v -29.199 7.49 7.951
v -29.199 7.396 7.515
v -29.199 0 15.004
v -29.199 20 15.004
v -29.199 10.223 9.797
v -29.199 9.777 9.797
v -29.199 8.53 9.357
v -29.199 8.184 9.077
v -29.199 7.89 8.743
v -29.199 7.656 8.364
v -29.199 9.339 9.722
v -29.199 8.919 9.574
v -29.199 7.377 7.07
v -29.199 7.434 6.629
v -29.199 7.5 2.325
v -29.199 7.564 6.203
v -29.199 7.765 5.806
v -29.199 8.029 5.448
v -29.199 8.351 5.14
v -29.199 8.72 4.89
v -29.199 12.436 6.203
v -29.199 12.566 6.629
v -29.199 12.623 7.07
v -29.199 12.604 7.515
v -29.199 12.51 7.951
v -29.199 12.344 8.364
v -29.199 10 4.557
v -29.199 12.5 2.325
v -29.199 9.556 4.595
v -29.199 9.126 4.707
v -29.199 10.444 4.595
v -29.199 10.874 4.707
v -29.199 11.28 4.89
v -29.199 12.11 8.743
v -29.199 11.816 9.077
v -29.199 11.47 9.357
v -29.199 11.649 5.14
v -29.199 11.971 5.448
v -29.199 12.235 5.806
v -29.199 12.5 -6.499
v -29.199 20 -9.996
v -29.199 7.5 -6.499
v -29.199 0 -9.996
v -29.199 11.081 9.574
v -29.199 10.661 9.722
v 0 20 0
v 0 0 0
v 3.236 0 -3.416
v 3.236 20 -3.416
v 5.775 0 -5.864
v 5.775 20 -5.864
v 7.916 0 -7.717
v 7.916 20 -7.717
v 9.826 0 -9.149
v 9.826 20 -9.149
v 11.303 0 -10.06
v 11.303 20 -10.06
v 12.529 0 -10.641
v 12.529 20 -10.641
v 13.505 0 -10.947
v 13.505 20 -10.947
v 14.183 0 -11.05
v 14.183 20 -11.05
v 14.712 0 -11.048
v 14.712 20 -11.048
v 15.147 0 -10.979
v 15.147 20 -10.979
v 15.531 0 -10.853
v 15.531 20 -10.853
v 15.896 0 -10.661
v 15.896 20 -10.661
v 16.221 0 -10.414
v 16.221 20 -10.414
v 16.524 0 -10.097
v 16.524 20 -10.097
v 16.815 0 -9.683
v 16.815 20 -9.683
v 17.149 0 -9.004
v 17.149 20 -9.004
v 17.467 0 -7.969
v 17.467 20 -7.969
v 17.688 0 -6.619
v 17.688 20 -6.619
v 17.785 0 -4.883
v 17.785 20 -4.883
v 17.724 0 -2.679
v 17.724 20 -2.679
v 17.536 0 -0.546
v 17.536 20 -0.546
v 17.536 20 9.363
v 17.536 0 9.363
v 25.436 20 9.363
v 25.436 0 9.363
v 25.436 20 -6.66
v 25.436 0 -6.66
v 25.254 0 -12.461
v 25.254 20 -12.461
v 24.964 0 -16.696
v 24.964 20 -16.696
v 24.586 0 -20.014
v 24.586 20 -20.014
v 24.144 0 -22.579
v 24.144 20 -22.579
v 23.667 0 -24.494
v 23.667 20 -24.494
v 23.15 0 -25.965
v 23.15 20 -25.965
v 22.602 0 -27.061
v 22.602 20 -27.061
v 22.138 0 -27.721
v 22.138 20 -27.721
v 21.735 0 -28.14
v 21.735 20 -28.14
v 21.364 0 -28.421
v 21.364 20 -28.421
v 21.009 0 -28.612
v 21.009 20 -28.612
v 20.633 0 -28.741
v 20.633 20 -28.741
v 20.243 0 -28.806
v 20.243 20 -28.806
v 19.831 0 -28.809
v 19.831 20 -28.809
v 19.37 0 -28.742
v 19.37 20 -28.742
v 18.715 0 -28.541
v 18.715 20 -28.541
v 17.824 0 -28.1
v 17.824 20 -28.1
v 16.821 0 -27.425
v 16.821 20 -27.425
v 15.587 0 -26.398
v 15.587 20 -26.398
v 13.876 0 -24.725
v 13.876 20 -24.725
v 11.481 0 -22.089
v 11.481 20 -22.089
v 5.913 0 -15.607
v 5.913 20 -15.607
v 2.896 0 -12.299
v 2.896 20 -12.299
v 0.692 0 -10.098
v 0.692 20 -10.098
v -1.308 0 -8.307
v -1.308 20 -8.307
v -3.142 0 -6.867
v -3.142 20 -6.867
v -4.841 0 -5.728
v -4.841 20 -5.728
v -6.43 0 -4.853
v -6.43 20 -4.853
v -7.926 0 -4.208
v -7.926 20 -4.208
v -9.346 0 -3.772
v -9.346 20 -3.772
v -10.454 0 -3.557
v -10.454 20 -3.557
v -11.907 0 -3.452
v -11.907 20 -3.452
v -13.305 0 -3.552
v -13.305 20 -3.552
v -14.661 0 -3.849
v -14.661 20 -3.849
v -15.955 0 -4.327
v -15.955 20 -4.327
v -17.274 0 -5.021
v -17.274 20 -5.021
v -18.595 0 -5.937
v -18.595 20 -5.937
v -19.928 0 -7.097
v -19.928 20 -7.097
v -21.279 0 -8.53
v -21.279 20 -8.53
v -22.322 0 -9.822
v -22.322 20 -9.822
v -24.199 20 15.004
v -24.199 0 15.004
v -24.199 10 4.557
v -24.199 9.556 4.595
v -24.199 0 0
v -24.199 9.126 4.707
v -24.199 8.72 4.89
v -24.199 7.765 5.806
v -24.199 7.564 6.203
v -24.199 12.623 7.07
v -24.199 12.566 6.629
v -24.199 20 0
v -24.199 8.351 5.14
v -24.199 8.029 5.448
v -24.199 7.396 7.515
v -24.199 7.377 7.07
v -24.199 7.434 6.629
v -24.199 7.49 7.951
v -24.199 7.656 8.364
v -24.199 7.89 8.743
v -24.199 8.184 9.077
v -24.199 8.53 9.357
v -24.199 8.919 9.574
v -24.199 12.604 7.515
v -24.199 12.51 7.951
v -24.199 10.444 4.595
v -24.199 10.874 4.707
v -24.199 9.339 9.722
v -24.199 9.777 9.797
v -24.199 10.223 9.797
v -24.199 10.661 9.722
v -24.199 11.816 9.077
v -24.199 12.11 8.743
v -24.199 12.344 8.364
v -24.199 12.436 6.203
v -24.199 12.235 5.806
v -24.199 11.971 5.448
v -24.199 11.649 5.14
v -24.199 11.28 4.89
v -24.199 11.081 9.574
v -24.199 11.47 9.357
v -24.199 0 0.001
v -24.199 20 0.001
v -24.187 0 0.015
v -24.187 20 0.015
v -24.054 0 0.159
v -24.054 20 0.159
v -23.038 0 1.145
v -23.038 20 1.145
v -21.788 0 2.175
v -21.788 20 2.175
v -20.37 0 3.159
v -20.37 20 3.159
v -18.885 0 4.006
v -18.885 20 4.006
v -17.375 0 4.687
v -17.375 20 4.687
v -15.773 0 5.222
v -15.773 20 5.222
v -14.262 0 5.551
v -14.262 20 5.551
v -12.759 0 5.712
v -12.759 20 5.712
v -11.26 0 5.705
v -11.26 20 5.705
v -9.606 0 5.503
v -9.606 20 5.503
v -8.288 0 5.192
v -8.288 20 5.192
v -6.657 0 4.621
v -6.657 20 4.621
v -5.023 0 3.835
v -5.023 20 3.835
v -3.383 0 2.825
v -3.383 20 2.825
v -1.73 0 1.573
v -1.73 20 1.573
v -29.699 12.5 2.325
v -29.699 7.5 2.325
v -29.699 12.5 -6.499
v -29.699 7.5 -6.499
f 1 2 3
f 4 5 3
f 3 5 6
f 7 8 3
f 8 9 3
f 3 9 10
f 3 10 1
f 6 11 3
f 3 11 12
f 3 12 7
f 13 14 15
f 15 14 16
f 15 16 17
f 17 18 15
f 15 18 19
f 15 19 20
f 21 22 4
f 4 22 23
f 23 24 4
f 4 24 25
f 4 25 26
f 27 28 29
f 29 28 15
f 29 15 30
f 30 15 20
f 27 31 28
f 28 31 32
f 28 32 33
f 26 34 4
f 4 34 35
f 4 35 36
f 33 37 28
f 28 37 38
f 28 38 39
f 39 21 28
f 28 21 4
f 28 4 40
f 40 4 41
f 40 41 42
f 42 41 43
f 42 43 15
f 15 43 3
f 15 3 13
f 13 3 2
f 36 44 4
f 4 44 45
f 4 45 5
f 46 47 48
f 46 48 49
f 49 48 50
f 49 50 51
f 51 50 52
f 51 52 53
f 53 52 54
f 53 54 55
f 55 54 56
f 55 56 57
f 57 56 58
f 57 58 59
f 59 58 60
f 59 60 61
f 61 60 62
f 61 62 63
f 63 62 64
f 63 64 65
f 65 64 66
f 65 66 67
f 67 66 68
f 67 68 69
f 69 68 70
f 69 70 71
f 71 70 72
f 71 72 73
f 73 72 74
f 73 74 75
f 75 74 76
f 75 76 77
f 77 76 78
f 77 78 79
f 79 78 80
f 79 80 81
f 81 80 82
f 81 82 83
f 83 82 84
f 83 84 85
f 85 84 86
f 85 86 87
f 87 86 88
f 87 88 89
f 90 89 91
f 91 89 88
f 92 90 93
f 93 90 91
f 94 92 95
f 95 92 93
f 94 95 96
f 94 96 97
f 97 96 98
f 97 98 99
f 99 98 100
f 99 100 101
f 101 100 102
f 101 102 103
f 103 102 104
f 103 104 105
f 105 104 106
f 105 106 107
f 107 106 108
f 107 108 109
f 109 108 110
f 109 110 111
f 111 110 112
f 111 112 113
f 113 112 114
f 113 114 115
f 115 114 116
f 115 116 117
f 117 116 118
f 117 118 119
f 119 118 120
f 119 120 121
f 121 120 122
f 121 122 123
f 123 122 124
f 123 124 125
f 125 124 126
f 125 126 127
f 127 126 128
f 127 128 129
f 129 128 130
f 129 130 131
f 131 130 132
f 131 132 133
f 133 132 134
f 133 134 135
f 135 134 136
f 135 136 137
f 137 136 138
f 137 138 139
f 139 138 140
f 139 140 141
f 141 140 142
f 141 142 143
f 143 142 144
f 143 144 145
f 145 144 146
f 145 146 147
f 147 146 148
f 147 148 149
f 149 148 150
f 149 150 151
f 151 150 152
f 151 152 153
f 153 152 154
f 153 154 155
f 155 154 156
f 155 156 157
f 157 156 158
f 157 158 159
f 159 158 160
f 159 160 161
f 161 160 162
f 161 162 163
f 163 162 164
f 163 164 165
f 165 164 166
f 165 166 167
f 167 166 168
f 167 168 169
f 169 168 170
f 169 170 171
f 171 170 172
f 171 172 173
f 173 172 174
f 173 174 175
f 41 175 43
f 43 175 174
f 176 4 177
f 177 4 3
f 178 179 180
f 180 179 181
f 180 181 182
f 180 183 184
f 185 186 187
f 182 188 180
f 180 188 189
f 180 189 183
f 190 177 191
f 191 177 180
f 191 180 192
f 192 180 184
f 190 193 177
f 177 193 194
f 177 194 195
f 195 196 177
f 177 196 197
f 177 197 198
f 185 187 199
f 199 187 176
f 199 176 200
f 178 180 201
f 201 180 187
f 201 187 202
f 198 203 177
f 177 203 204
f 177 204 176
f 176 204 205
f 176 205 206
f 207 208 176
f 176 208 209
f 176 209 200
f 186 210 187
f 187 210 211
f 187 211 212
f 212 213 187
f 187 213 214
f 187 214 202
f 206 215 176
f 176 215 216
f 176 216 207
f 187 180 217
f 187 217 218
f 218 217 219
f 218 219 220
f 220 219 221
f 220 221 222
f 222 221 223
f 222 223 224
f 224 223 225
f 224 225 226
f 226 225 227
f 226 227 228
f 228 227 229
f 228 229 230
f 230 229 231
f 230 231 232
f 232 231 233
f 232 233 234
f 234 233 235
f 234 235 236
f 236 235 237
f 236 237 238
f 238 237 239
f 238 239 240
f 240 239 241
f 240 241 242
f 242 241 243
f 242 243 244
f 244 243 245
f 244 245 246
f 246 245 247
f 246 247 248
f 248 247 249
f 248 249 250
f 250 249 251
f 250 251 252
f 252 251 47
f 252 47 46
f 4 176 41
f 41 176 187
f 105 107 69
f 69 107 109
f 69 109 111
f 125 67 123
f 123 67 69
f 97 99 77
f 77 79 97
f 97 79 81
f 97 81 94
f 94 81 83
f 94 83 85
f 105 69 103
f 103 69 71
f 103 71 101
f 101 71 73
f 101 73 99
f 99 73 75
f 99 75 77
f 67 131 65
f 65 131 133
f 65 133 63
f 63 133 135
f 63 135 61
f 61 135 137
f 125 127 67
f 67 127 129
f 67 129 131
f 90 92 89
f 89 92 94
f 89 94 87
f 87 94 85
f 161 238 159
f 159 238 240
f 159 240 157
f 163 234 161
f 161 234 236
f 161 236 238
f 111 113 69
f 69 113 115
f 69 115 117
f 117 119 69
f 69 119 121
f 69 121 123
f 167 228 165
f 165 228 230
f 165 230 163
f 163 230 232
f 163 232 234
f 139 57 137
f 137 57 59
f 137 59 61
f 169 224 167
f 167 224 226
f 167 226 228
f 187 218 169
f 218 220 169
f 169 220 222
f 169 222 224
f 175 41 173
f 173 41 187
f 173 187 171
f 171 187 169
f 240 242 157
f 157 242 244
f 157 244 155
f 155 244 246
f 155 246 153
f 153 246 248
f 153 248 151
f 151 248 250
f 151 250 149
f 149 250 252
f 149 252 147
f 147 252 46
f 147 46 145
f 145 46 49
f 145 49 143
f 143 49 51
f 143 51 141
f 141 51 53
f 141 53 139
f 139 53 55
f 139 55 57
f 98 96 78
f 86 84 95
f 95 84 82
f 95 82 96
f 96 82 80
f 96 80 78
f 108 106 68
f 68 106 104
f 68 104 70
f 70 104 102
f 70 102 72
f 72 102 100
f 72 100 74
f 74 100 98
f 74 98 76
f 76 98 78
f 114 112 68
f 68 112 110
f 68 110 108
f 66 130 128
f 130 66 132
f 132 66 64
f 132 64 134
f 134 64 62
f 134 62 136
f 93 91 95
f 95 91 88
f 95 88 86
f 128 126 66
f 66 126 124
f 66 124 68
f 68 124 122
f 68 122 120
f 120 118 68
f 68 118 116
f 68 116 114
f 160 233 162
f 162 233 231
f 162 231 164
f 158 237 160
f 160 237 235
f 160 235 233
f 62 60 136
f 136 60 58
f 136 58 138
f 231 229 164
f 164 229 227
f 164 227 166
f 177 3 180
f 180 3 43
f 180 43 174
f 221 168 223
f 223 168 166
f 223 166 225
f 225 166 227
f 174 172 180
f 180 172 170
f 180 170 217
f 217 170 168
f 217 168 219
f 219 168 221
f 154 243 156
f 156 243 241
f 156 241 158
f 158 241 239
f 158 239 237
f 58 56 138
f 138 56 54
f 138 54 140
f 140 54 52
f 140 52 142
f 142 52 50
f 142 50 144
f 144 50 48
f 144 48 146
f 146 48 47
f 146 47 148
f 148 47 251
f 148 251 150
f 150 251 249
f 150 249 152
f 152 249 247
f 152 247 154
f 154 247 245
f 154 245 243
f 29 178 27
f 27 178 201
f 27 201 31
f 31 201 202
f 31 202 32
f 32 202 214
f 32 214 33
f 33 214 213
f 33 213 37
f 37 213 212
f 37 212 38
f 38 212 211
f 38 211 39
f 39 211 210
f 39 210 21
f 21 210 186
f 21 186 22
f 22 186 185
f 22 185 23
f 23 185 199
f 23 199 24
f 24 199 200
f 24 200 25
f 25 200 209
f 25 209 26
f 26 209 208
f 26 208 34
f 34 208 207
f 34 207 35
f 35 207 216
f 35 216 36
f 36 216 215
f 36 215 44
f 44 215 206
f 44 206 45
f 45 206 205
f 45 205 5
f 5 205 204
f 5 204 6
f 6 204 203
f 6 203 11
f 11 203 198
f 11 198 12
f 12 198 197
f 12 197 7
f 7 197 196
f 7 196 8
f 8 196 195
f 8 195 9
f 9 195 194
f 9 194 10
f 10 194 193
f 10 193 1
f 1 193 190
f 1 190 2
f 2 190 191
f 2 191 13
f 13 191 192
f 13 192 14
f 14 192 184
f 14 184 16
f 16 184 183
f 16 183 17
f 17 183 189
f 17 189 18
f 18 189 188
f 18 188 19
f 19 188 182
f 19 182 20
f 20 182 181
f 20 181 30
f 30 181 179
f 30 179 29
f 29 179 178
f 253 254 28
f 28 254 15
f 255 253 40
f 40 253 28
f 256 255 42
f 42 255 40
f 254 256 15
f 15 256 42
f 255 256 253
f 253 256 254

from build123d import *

# Parameters (mm, degrees)
BOSS_EXTRUDE3_DEPTH = 20
SKETCH3_R           = 2.625
CUT_EXTRUDE1_DEPTH  = 6.0000001
SKETCH4_W           = 8.823264565
SKETCH4_H           = 5
BOSS_EXTRUDE4_DEPTH = 0.5


with BuildPart() as part:
    # Sketch1 → Boss-Extrude3 (new body)
    with BuildSketch(Plane(origin=(0, 0, 0), x_dir=(1, 0, 0), z_dir=(0, 1, 0))):
        with BuildLine():
            Line((-24.199448649, 0), (-24.199448649, -4.824773701))
            Line((-24.199448649, -4.824773701), (-24.199448649, -15.004197918))
            Line((-24.199448649, -15.004197918), (-29.199448649, -15.004197918))
            Line((-29.199448649, -15.004197918), (-29.199448649, -4.824773701))
            Line((-29.199448649, -4.824773701), (-29.199448649, 9.995802082))
            Line((-29.199448649, 9.995802082), (-22.322379413, 9.822250815))
            add(Edge.make_bspline(
                [(-22.322379413, 9.822250815), (0.232629534, -19.940907612), (24.467567917, 67.681570283), (25.436252045, 6.659493601)],
                knots=[0, 0, 0, 0, 1, 1, 1, 1], degree=3))
            Line((25.436252045, 6.659493601), (25.436252045, -9.362628557))
            Line((25.436252045, -9.362628557), (17.536308623, -9.362628557))
            Line((17.536308623, -9.362628557), (17.536308623, 0.546329))
            add(Edge.make_bspline(
                [(0, 0), (19.89900847, 21.841866163), (17.536308623, 0.546329)],
                knots=[0, 0, 0, 1, 1, 1], degree=2))
            add(Edge.make_bspline(
                [(-24.199448649, 0), (-24.197798481, -0.001931794), (-13.033999021, -12.890058665), (0, 0)],
                knots=[0, 0, 0, 0, 1, 1, 1, 1], degree=3))
        make_face()
    extrude(amount=BOSS_EXTRUDE3_DEPTH)

    # Sketch3 → Cut-Extrude1 (cut, through all)
    with BuildSketch(Plane(origin=(-24.199448649, 0, 0), x_dir=(0, 0, -1), z_dir=(1, 0, 0))):
        with Locations((-7.181936729, 10)):
            Circle(SKETCH3_R)
    extrude(amount=-CUT_EXTRUDE1_DEPTH, mode=Mode.SUBTRACT)

    # Sketch4 → Boss-Extrude4 (add)
    with BuildSketch(Plane.ZY.offset(29.199448649)):
        with Locations((-2.086858582, 10)):
            Rectangle(SKETCH4_W, SKETCH4_H)
    extrude(amount=BOSS_EXTRUDE4_DEPTH)


solid = part.part
